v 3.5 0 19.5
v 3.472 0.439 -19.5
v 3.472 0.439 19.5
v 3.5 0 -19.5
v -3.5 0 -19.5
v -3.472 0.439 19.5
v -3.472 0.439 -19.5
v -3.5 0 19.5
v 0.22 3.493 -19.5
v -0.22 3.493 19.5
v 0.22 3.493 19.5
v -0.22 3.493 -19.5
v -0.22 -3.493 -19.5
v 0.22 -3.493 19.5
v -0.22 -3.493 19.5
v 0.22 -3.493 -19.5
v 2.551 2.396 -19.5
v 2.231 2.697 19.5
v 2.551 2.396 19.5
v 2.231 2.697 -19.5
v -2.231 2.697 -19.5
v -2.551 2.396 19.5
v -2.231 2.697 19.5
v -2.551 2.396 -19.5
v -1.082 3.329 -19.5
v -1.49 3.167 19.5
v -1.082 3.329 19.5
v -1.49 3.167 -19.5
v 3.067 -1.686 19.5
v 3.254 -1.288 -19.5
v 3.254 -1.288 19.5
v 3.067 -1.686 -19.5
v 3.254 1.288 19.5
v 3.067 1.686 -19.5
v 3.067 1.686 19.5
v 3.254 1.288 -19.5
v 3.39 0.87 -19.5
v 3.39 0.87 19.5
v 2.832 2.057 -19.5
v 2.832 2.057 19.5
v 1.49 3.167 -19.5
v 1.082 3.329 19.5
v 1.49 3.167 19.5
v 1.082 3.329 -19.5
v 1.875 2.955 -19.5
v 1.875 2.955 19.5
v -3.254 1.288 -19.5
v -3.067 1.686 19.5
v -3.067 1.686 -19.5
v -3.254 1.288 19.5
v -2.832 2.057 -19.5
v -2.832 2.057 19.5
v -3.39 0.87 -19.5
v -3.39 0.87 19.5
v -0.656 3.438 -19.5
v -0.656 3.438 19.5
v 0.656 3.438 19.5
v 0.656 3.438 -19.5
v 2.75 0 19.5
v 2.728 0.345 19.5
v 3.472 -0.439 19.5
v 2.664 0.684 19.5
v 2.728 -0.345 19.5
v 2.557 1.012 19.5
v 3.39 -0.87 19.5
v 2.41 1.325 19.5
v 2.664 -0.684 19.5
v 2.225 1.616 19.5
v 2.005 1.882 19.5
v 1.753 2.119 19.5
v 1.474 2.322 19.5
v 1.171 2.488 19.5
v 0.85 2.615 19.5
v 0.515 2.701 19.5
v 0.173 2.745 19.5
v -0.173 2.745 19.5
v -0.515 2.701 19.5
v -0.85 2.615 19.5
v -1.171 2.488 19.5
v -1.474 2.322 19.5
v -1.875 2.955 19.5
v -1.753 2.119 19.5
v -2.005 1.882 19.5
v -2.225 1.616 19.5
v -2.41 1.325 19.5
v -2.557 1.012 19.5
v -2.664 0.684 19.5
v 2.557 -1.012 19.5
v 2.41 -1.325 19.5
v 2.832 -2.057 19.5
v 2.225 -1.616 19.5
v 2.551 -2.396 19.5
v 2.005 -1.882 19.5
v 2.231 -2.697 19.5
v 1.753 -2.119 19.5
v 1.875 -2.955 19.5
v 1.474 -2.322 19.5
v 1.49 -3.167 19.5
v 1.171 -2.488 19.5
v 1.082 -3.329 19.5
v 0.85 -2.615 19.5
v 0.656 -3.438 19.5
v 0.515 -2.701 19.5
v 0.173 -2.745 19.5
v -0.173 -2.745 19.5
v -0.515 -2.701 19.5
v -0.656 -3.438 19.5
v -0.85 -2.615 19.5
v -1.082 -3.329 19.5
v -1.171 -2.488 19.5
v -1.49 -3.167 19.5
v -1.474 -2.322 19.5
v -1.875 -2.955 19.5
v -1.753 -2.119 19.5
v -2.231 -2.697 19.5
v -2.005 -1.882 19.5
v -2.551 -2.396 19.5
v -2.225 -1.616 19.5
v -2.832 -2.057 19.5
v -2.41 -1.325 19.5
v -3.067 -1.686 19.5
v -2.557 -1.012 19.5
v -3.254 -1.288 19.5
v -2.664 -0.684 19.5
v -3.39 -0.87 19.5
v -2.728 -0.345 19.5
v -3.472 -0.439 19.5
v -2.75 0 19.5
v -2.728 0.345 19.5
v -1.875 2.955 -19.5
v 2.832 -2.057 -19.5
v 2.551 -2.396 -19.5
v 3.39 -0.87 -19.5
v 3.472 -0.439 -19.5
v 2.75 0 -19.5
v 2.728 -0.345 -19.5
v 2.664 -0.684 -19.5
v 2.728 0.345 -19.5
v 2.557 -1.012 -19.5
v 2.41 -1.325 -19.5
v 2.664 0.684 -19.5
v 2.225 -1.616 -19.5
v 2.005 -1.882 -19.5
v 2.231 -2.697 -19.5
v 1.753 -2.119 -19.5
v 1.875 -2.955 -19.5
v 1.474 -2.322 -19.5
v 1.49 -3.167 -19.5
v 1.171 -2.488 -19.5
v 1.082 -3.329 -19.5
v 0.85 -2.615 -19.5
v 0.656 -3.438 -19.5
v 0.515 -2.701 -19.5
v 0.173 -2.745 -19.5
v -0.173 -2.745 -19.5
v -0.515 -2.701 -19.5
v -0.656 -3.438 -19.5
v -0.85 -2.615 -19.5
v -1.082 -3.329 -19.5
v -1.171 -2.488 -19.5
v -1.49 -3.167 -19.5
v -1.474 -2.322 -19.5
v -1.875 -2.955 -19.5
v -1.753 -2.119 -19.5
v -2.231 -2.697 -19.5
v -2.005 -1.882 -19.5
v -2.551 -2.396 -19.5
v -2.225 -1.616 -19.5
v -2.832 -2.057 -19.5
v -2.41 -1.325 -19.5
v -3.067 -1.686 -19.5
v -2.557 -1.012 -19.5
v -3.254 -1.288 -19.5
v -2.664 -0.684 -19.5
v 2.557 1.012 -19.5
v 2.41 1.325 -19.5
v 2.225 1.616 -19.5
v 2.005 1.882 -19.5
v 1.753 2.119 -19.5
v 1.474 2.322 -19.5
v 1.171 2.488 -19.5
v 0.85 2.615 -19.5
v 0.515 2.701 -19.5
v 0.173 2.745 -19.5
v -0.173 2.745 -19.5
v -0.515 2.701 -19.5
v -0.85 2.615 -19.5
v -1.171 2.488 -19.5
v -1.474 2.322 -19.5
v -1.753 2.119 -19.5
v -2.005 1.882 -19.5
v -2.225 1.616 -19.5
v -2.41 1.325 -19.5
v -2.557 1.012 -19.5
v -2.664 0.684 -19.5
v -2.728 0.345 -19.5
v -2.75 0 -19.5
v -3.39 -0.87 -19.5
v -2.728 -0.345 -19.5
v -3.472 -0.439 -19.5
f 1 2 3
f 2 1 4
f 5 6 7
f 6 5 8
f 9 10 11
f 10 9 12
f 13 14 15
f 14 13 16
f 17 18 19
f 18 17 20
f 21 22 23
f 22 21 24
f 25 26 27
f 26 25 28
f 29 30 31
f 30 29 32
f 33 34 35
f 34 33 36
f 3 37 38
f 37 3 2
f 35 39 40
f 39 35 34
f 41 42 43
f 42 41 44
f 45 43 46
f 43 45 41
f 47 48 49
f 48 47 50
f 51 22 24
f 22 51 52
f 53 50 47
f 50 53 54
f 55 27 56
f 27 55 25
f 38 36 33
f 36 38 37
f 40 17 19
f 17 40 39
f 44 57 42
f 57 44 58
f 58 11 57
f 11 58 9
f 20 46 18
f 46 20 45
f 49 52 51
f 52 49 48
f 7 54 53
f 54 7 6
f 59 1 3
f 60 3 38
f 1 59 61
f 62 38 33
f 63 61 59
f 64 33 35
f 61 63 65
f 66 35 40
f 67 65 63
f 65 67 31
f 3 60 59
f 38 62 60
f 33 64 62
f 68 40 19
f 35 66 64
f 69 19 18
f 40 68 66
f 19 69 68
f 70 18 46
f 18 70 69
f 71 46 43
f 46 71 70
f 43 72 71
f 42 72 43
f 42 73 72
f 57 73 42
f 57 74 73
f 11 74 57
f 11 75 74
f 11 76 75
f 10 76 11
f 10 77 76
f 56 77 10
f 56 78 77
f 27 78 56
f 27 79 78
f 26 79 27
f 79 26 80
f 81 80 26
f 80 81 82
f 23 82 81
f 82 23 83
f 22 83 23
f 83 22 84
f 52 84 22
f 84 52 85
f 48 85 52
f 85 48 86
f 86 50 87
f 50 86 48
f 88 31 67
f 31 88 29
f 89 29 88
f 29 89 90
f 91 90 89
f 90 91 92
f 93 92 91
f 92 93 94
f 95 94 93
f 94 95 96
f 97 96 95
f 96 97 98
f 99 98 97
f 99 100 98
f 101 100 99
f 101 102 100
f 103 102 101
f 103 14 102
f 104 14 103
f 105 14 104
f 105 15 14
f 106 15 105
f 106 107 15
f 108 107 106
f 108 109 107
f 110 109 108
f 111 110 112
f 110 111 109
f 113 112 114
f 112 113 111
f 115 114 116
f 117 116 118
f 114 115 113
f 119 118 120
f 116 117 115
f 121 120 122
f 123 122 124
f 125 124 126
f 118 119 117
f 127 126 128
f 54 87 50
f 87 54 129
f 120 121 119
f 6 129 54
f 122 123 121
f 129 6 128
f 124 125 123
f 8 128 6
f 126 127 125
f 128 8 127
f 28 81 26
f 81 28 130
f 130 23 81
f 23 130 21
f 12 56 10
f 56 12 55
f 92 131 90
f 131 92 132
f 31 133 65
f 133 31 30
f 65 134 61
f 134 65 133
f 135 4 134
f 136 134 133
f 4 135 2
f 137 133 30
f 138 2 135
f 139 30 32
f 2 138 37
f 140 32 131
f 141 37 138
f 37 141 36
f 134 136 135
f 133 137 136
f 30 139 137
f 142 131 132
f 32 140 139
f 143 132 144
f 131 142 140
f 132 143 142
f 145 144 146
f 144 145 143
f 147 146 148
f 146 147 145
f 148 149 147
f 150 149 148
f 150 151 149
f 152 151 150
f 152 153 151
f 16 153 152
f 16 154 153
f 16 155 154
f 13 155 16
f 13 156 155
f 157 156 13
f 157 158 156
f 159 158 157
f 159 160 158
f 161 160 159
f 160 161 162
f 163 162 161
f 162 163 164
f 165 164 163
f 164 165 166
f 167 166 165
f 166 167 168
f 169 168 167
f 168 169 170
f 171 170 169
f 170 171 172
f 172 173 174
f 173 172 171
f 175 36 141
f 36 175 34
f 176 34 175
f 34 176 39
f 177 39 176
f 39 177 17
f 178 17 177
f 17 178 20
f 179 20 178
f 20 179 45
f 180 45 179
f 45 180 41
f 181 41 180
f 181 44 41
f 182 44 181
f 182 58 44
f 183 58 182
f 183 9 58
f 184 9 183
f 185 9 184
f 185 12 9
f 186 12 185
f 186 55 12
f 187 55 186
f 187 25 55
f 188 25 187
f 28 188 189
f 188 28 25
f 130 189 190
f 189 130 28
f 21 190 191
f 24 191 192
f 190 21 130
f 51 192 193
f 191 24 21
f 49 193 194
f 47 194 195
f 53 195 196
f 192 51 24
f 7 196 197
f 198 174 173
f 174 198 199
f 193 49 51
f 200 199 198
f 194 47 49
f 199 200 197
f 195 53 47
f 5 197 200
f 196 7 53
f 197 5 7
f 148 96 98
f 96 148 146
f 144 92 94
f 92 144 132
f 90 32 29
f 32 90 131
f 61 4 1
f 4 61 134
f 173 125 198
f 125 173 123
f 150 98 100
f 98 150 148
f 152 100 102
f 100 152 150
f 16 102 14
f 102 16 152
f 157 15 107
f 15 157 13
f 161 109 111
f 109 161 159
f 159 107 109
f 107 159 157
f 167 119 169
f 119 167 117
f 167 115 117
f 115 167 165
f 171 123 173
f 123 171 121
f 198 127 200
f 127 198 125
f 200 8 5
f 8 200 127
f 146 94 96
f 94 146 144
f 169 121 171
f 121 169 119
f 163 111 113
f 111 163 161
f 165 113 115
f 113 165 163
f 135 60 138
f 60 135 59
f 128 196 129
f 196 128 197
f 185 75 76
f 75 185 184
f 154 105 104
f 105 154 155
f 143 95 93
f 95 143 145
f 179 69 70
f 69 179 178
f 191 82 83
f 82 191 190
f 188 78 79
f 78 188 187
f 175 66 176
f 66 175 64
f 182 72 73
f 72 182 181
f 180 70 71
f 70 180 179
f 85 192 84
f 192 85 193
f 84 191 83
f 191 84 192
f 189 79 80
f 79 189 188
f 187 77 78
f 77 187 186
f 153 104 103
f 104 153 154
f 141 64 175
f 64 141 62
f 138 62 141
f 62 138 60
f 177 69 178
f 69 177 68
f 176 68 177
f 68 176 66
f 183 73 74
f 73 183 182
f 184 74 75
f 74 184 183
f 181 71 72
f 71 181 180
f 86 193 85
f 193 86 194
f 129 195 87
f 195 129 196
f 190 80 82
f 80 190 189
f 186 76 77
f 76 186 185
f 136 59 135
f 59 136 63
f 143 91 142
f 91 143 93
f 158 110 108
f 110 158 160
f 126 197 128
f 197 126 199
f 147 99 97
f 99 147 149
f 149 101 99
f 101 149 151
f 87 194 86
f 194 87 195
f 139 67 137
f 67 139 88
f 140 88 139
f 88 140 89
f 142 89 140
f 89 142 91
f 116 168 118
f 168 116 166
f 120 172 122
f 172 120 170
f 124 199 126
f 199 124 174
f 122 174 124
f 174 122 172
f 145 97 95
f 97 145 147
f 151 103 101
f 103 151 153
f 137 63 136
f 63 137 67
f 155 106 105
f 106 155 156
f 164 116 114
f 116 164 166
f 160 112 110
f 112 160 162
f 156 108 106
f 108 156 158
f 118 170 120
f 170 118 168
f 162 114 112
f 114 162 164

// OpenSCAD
$fn = 50;


difference() {
	union() {
		translate(v = [0, 0, -19.5000000000]) {
			cylinder(h = 39, r = 3.5000000000);
		}
	}
	union() {
		translate(v = [0, 0, -100.0000000000]) {
			cylinder(h = 200, r = 2.7500000000);
		}
	}
}
